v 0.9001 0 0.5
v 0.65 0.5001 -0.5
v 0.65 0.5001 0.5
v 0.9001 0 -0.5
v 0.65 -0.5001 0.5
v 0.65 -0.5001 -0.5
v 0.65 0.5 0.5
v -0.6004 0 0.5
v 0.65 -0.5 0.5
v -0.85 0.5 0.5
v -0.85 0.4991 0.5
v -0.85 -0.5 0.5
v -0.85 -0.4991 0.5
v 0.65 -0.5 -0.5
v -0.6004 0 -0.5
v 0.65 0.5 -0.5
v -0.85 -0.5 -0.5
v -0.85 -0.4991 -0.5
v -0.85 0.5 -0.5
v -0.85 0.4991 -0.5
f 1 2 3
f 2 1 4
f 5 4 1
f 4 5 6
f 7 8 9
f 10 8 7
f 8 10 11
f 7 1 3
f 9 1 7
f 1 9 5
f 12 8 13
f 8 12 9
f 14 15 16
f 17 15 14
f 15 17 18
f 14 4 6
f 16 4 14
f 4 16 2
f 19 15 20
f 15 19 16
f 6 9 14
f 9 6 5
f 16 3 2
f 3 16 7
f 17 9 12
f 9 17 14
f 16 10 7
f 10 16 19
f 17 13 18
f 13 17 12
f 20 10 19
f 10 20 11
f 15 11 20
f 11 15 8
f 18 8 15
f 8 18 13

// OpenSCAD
rotate([90,0,0])scale([0.05,0.1,0.1])translate([-2,0,0])difference(){
    union(){
        cube([30,10,10],true);
        translate([5,0,0])point();
    }
    translate([-25.01,0,0])scale([1,1.1,1])point();
}

module point(){
    difference(){
        translate([7.93,0,0])rotate([0,45,0]){
            cube([10,10,10],true);
        }
        cube([20,20,20],true);
    }
}
